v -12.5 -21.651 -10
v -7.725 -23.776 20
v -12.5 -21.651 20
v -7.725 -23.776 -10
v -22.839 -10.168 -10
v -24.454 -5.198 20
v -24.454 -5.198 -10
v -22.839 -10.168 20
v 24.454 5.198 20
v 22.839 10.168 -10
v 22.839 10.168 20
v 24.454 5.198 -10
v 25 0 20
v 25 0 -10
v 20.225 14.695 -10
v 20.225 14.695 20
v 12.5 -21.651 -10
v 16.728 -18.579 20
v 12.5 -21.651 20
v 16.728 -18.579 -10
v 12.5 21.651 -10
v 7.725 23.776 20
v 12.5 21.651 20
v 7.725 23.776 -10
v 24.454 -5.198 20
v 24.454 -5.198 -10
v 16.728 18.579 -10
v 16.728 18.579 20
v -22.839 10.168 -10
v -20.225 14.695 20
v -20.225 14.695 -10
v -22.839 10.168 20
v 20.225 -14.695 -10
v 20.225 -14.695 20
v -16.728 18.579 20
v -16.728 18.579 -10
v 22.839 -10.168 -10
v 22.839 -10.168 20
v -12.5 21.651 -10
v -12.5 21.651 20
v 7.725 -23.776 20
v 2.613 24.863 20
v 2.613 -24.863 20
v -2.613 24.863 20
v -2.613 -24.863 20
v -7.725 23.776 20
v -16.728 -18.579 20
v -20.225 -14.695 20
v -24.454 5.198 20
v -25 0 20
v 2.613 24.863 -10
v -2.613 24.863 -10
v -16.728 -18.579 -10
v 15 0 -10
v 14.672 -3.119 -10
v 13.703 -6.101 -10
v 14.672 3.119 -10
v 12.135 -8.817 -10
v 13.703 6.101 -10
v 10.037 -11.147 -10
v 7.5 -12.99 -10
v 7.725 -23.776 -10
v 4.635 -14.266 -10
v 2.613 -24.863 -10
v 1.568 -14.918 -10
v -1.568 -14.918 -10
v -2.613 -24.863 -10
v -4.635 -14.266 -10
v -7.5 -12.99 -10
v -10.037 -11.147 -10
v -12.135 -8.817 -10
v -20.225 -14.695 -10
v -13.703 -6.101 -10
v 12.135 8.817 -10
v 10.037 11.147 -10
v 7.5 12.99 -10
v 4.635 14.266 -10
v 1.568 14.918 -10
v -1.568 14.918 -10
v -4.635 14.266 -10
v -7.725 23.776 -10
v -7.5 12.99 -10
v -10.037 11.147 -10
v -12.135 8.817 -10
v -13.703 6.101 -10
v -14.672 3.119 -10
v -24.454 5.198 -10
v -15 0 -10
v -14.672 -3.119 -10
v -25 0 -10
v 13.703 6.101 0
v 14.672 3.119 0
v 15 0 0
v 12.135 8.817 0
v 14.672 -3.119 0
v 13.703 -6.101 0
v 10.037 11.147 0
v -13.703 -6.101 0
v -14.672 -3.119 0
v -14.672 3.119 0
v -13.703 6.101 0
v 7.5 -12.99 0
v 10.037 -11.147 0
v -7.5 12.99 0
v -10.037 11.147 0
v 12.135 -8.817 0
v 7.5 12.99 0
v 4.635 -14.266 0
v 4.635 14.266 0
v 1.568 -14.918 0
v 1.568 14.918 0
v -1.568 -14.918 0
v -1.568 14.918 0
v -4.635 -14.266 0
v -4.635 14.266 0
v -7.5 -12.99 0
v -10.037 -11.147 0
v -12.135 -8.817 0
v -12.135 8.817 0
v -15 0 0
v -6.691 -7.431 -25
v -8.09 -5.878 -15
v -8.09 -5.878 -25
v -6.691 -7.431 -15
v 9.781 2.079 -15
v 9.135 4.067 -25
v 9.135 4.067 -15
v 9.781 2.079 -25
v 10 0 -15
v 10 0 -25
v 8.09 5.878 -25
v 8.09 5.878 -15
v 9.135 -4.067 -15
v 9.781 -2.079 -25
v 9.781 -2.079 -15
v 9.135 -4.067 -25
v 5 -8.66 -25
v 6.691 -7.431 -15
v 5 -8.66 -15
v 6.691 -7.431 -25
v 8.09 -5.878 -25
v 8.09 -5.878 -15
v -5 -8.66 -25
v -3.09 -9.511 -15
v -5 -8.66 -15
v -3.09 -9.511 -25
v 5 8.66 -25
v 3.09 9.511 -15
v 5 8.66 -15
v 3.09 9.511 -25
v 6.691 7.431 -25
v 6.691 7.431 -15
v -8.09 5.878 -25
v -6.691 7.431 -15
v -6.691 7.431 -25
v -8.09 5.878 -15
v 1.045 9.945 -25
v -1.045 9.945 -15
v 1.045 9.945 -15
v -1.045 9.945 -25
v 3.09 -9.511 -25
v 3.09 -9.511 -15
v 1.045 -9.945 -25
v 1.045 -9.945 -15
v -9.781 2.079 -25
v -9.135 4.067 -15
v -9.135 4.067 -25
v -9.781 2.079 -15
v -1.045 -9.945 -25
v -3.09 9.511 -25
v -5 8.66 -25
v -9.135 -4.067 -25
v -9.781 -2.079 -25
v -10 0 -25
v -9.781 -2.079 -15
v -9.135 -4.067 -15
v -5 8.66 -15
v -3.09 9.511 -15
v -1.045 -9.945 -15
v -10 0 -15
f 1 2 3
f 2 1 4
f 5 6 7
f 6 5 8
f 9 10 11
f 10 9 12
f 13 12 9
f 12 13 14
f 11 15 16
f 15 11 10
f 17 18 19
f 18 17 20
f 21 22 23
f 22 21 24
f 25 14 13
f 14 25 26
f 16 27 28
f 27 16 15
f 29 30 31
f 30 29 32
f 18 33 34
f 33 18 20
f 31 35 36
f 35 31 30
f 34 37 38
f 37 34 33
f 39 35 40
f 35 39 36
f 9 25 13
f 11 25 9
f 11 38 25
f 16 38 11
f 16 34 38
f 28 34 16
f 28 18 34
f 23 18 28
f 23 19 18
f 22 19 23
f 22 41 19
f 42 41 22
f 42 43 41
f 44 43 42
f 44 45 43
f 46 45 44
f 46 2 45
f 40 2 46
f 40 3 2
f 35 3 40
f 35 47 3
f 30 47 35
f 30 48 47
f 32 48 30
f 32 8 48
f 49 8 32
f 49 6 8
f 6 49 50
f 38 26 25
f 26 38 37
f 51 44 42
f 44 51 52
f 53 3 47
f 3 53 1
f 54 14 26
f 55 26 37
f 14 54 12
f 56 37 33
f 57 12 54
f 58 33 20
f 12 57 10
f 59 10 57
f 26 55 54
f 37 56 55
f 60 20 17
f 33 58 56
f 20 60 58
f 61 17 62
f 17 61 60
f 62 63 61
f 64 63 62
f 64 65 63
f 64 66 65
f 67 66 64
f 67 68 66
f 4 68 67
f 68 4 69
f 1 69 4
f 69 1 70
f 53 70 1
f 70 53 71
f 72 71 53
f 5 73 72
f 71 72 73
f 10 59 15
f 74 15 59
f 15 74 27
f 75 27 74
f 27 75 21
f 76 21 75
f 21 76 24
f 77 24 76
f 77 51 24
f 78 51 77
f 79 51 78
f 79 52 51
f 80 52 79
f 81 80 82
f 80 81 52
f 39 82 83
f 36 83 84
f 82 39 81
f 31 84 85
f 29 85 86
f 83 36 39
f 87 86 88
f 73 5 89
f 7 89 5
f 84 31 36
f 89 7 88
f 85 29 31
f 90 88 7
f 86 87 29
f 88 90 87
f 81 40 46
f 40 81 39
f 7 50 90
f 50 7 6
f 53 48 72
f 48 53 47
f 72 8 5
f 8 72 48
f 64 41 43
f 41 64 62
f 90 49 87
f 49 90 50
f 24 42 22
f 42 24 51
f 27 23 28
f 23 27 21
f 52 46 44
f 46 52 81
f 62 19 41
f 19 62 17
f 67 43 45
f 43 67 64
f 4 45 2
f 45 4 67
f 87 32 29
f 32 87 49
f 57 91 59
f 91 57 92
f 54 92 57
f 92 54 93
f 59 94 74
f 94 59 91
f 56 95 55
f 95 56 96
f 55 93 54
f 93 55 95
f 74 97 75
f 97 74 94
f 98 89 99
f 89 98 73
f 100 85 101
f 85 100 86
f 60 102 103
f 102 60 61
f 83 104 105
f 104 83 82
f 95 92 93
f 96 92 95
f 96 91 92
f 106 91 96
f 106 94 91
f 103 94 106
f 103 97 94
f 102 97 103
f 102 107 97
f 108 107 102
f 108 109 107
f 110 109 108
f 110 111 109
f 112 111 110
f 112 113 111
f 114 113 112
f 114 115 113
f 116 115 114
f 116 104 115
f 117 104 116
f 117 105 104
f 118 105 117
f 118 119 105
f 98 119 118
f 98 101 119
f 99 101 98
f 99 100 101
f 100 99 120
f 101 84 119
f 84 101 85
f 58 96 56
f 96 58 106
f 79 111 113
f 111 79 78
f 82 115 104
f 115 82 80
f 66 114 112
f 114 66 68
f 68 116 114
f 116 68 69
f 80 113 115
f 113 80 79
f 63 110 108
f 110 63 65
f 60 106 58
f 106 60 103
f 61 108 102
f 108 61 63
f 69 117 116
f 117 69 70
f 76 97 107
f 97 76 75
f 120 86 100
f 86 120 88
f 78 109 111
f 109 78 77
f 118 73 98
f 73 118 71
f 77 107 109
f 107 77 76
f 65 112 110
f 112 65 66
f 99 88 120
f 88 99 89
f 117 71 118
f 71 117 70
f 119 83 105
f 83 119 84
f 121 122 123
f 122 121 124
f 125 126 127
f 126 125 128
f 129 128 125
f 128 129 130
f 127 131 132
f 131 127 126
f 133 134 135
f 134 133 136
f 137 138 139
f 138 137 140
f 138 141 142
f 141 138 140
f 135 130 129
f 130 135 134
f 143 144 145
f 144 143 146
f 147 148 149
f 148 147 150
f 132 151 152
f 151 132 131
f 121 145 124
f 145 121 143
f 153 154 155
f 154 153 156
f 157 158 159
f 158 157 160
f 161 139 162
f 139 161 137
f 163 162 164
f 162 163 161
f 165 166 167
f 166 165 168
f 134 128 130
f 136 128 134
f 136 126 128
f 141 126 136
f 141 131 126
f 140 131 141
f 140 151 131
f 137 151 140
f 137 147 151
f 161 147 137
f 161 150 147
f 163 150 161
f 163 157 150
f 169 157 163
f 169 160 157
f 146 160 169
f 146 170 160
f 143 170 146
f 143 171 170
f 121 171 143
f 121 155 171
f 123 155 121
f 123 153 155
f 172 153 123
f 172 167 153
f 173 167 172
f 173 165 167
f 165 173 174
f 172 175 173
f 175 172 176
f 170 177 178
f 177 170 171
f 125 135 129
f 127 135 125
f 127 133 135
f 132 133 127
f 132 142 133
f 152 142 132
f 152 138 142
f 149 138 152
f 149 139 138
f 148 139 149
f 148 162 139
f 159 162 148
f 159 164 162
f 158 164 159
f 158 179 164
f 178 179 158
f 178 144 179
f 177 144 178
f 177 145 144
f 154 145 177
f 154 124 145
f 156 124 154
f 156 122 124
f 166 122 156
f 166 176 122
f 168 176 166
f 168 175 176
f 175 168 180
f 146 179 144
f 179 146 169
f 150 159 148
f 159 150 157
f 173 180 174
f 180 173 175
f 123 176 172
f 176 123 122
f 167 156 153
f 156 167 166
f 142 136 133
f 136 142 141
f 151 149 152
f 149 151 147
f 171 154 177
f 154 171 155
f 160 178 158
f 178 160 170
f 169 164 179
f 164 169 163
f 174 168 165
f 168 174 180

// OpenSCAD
// Parameters for cylindrical body
cylindrical_body_diameter = 50; // Diameter of the cylindrical body
cylindrical_body_height = 30;   // Height of the cylindrical body
recess_diameter = 30;           // Diameter of the recessed hollow at the bottom
recess_depth = 10;              // Depth of the recessed hollow

// Parameters for base cylinder
base_cylinder_diameter = 20;    // Diameter of the base cylinder
base_cylinder_height = 10;      // Height of the base cylinder

// Main cylindrical body
module cylindrical_body() {
    difference() {
        cylinder(d = cylindrical_body_diameter, h = cylindrical_body_height, center = true);
        translate([0, 0, -cylindrical_body_height / 2])
            cylinder(d = recess_diameter, h = recess_depth, center = false);
    }
}

// Base cylinder
module base_cylinder() {
    cylinder(d = base_cylinder_diameter, h = base_cylinder_height, center = true);
}

// Combine components
translate([0, 0, base_cylinder_height / 2])
    cylindrical_body();

translate([0, 0, -cylindrical_body_height / 2 - base_cylinder_height / 2])
    base_cylinder();
